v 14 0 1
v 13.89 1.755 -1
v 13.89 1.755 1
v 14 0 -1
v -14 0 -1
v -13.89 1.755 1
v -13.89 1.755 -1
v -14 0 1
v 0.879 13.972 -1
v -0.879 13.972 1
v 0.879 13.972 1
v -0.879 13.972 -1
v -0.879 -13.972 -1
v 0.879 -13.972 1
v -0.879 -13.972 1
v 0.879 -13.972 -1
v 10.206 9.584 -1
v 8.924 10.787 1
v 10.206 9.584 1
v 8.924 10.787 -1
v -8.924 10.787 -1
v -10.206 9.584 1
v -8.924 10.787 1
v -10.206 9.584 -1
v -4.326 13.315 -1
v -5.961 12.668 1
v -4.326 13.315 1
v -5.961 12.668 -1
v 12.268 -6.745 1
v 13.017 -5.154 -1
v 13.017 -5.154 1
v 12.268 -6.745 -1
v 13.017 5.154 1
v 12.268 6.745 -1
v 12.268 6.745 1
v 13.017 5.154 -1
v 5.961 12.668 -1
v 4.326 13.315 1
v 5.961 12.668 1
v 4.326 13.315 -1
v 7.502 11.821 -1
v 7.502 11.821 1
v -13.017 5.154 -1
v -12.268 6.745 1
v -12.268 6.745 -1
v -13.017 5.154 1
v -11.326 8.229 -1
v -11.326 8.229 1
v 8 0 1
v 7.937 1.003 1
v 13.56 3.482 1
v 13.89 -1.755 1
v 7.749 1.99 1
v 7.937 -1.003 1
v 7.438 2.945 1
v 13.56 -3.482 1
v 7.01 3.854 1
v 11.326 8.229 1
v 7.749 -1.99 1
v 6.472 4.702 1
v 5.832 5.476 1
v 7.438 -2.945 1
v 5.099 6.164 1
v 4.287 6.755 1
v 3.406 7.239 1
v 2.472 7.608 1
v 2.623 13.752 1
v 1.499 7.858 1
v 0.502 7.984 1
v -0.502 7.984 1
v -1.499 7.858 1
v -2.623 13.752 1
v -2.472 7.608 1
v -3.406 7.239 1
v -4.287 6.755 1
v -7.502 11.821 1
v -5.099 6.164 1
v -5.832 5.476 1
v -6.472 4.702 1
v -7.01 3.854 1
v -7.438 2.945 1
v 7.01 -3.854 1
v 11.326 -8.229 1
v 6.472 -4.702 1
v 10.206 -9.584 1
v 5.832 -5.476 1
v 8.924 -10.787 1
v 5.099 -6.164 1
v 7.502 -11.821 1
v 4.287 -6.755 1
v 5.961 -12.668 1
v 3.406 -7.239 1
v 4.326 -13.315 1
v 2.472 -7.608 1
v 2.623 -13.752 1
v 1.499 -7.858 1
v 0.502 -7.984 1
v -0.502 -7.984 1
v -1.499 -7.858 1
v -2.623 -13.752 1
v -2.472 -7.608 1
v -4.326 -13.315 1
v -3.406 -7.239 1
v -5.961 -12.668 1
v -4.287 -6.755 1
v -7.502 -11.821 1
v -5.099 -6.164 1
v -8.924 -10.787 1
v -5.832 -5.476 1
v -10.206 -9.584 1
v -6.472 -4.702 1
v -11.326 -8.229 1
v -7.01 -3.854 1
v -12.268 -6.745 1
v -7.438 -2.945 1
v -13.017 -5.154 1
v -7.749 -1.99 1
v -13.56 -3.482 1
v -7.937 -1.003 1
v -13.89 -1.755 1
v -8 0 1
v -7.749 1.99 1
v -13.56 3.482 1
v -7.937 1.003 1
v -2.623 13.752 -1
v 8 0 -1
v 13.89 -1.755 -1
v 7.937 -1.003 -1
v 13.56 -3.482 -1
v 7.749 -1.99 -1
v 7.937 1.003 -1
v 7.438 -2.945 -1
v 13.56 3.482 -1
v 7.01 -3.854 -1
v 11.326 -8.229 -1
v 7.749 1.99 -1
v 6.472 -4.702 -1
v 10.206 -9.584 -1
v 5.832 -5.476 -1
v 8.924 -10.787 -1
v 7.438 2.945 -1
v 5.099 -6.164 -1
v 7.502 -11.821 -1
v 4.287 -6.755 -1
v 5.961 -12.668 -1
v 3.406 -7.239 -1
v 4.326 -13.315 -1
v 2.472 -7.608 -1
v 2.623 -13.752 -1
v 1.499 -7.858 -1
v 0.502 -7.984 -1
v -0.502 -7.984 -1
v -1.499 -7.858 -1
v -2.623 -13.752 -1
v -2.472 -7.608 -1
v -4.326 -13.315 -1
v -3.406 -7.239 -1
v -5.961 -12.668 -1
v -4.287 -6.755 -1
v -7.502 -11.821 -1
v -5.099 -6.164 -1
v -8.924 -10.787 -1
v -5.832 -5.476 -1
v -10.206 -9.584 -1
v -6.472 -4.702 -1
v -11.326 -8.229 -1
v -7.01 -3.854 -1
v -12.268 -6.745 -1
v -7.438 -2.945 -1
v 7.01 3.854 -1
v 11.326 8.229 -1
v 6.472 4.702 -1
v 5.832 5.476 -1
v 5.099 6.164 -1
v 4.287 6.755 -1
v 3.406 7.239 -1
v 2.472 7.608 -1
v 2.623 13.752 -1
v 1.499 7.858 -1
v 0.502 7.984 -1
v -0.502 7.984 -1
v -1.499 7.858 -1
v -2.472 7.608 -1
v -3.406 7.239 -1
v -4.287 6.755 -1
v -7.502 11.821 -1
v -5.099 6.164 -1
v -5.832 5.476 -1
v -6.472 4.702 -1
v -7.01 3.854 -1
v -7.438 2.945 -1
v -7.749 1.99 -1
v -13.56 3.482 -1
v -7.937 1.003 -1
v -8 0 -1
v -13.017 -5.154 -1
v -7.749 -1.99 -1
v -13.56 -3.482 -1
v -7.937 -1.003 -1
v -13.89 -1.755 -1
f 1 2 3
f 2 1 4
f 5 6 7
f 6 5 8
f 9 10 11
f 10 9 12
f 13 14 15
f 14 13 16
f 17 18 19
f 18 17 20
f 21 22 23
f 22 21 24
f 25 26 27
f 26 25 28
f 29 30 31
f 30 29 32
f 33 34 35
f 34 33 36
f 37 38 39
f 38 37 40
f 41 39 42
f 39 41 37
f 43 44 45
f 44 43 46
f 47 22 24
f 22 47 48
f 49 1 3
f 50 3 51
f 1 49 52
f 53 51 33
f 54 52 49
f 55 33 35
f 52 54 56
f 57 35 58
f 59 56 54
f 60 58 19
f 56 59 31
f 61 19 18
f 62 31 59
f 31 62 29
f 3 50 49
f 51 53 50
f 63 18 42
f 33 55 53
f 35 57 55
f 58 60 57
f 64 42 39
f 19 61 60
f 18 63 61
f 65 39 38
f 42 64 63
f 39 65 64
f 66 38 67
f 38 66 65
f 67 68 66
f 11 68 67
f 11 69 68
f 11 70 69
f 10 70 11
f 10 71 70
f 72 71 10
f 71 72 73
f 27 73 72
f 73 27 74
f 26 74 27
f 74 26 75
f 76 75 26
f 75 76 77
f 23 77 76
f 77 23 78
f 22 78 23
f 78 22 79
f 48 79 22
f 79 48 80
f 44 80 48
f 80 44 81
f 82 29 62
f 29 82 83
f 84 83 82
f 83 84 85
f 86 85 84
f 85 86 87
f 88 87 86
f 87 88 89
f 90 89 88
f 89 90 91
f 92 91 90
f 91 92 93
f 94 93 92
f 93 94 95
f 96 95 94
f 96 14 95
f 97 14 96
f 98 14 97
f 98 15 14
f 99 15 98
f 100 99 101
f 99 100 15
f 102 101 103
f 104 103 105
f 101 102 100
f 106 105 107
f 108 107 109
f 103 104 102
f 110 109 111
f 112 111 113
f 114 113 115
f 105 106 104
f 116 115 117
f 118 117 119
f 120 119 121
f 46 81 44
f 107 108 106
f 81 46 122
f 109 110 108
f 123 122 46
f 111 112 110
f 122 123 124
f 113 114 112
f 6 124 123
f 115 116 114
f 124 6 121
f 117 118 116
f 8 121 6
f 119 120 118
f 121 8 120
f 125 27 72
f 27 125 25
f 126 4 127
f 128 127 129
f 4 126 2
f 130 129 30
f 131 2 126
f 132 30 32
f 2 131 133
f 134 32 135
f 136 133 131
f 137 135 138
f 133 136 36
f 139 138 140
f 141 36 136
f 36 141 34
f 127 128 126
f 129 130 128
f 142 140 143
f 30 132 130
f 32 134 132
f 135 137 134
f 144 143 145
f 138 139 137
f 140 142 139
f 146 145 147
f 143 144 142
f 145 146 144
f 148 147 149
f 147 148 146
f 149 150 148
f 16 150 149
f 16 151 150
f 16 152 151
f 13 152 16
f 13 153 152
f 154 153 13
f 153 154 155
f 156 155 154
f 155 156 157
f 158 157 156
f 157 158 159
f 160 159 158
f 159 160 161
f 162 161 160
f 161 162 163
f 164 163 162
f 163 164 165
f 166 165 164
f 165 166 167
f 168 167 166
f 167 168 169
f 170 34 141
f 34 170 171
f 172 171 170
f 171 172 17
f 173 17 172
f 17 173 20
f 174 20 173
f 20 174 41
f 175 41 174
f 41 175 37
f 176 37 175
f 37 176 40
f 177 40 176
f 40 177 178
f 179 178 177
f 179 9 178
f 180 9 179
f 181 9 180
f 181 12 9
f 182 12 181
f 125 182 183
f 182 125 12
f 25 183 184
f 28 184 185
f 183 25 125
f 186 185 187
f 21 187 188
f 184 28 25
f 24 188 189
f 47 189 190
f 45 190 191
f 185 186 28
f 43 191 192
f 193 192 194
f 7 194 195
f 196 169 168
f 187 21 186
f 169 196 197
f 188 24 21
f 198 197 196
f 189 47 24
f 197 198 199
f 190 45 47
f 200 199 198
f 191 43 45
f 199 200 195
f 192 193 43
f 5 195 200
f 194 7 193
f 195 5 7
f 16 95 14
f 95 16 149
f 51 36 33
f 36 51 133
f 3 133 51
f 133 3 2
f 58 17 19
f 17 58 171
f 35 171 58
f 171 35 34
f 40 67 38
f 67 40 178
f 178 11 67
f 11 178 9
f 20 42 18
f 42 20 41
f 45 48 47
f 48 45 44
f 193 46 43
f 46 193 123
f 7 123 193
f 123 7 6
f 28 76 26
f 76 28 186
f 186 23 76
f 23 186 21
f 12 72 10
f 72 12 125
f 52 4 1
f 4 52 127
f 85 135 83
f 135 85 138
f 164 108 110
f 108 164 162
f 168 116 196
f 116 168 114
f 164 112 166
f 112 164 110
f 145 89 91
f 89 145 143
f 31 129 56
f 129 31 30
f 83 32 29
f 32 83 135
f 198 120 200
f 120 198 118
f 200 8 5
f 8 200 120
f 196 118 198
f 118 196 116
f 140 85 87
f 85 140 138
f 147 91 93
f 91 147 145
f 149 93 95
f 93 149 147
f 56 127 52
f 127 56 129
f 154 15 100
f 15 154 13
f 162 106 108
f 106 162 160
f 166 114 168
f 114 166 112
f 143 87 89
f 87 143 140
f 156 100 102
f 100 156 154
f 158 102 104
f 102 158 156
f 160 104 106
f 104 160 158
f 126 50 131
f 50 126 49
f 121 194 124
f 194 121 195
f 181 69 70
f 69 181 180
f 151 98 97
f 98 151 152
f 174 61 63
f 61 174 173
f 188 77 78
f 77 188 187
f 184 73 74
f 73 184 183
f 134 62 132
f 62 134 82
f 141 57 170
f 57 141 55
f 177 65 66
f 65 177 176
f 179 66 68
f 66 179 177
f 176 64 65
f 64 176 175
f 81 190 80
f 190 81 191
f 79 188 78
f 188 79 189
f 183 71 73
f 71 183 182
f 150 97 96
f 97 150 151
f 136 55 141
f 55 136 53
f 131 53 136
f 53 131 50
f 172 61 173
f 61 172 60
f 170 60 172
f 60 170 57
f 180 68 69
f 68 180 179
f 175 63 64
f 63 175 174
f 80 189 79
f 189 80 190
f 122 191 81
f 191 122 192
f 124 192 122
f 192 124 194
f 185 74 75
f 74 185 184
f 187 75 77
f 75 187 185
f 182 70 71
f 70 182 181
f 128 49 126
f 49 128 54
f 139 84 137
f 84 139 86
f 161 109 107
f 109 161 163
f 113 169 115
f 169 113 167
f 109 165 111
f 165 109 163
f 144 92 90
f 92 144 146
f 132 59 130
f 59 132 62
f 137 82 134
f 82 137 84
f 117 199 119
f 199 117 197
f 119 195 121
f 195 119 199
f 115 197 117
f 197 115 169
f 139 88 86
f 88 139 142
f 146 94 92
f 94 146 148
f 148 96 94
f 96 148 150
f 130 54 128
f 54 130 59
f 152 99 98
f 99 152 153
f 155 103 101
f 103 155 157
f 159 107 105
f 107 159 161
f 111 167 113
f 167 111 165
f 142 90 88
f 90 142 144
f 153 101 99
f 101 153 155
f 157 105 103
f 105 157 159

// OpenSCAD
$fn = 50;


difference() {
	union() {
		translate(v = [0, 0, -1.0000000000]) {
			cylinder(h = 2, r = 14.0000000000);
		}
	}
	union() {
		translate(v = [0, 0, -100.0000000000]) {
			cylinder(h = 200, r = 8);
		}
	}
}
